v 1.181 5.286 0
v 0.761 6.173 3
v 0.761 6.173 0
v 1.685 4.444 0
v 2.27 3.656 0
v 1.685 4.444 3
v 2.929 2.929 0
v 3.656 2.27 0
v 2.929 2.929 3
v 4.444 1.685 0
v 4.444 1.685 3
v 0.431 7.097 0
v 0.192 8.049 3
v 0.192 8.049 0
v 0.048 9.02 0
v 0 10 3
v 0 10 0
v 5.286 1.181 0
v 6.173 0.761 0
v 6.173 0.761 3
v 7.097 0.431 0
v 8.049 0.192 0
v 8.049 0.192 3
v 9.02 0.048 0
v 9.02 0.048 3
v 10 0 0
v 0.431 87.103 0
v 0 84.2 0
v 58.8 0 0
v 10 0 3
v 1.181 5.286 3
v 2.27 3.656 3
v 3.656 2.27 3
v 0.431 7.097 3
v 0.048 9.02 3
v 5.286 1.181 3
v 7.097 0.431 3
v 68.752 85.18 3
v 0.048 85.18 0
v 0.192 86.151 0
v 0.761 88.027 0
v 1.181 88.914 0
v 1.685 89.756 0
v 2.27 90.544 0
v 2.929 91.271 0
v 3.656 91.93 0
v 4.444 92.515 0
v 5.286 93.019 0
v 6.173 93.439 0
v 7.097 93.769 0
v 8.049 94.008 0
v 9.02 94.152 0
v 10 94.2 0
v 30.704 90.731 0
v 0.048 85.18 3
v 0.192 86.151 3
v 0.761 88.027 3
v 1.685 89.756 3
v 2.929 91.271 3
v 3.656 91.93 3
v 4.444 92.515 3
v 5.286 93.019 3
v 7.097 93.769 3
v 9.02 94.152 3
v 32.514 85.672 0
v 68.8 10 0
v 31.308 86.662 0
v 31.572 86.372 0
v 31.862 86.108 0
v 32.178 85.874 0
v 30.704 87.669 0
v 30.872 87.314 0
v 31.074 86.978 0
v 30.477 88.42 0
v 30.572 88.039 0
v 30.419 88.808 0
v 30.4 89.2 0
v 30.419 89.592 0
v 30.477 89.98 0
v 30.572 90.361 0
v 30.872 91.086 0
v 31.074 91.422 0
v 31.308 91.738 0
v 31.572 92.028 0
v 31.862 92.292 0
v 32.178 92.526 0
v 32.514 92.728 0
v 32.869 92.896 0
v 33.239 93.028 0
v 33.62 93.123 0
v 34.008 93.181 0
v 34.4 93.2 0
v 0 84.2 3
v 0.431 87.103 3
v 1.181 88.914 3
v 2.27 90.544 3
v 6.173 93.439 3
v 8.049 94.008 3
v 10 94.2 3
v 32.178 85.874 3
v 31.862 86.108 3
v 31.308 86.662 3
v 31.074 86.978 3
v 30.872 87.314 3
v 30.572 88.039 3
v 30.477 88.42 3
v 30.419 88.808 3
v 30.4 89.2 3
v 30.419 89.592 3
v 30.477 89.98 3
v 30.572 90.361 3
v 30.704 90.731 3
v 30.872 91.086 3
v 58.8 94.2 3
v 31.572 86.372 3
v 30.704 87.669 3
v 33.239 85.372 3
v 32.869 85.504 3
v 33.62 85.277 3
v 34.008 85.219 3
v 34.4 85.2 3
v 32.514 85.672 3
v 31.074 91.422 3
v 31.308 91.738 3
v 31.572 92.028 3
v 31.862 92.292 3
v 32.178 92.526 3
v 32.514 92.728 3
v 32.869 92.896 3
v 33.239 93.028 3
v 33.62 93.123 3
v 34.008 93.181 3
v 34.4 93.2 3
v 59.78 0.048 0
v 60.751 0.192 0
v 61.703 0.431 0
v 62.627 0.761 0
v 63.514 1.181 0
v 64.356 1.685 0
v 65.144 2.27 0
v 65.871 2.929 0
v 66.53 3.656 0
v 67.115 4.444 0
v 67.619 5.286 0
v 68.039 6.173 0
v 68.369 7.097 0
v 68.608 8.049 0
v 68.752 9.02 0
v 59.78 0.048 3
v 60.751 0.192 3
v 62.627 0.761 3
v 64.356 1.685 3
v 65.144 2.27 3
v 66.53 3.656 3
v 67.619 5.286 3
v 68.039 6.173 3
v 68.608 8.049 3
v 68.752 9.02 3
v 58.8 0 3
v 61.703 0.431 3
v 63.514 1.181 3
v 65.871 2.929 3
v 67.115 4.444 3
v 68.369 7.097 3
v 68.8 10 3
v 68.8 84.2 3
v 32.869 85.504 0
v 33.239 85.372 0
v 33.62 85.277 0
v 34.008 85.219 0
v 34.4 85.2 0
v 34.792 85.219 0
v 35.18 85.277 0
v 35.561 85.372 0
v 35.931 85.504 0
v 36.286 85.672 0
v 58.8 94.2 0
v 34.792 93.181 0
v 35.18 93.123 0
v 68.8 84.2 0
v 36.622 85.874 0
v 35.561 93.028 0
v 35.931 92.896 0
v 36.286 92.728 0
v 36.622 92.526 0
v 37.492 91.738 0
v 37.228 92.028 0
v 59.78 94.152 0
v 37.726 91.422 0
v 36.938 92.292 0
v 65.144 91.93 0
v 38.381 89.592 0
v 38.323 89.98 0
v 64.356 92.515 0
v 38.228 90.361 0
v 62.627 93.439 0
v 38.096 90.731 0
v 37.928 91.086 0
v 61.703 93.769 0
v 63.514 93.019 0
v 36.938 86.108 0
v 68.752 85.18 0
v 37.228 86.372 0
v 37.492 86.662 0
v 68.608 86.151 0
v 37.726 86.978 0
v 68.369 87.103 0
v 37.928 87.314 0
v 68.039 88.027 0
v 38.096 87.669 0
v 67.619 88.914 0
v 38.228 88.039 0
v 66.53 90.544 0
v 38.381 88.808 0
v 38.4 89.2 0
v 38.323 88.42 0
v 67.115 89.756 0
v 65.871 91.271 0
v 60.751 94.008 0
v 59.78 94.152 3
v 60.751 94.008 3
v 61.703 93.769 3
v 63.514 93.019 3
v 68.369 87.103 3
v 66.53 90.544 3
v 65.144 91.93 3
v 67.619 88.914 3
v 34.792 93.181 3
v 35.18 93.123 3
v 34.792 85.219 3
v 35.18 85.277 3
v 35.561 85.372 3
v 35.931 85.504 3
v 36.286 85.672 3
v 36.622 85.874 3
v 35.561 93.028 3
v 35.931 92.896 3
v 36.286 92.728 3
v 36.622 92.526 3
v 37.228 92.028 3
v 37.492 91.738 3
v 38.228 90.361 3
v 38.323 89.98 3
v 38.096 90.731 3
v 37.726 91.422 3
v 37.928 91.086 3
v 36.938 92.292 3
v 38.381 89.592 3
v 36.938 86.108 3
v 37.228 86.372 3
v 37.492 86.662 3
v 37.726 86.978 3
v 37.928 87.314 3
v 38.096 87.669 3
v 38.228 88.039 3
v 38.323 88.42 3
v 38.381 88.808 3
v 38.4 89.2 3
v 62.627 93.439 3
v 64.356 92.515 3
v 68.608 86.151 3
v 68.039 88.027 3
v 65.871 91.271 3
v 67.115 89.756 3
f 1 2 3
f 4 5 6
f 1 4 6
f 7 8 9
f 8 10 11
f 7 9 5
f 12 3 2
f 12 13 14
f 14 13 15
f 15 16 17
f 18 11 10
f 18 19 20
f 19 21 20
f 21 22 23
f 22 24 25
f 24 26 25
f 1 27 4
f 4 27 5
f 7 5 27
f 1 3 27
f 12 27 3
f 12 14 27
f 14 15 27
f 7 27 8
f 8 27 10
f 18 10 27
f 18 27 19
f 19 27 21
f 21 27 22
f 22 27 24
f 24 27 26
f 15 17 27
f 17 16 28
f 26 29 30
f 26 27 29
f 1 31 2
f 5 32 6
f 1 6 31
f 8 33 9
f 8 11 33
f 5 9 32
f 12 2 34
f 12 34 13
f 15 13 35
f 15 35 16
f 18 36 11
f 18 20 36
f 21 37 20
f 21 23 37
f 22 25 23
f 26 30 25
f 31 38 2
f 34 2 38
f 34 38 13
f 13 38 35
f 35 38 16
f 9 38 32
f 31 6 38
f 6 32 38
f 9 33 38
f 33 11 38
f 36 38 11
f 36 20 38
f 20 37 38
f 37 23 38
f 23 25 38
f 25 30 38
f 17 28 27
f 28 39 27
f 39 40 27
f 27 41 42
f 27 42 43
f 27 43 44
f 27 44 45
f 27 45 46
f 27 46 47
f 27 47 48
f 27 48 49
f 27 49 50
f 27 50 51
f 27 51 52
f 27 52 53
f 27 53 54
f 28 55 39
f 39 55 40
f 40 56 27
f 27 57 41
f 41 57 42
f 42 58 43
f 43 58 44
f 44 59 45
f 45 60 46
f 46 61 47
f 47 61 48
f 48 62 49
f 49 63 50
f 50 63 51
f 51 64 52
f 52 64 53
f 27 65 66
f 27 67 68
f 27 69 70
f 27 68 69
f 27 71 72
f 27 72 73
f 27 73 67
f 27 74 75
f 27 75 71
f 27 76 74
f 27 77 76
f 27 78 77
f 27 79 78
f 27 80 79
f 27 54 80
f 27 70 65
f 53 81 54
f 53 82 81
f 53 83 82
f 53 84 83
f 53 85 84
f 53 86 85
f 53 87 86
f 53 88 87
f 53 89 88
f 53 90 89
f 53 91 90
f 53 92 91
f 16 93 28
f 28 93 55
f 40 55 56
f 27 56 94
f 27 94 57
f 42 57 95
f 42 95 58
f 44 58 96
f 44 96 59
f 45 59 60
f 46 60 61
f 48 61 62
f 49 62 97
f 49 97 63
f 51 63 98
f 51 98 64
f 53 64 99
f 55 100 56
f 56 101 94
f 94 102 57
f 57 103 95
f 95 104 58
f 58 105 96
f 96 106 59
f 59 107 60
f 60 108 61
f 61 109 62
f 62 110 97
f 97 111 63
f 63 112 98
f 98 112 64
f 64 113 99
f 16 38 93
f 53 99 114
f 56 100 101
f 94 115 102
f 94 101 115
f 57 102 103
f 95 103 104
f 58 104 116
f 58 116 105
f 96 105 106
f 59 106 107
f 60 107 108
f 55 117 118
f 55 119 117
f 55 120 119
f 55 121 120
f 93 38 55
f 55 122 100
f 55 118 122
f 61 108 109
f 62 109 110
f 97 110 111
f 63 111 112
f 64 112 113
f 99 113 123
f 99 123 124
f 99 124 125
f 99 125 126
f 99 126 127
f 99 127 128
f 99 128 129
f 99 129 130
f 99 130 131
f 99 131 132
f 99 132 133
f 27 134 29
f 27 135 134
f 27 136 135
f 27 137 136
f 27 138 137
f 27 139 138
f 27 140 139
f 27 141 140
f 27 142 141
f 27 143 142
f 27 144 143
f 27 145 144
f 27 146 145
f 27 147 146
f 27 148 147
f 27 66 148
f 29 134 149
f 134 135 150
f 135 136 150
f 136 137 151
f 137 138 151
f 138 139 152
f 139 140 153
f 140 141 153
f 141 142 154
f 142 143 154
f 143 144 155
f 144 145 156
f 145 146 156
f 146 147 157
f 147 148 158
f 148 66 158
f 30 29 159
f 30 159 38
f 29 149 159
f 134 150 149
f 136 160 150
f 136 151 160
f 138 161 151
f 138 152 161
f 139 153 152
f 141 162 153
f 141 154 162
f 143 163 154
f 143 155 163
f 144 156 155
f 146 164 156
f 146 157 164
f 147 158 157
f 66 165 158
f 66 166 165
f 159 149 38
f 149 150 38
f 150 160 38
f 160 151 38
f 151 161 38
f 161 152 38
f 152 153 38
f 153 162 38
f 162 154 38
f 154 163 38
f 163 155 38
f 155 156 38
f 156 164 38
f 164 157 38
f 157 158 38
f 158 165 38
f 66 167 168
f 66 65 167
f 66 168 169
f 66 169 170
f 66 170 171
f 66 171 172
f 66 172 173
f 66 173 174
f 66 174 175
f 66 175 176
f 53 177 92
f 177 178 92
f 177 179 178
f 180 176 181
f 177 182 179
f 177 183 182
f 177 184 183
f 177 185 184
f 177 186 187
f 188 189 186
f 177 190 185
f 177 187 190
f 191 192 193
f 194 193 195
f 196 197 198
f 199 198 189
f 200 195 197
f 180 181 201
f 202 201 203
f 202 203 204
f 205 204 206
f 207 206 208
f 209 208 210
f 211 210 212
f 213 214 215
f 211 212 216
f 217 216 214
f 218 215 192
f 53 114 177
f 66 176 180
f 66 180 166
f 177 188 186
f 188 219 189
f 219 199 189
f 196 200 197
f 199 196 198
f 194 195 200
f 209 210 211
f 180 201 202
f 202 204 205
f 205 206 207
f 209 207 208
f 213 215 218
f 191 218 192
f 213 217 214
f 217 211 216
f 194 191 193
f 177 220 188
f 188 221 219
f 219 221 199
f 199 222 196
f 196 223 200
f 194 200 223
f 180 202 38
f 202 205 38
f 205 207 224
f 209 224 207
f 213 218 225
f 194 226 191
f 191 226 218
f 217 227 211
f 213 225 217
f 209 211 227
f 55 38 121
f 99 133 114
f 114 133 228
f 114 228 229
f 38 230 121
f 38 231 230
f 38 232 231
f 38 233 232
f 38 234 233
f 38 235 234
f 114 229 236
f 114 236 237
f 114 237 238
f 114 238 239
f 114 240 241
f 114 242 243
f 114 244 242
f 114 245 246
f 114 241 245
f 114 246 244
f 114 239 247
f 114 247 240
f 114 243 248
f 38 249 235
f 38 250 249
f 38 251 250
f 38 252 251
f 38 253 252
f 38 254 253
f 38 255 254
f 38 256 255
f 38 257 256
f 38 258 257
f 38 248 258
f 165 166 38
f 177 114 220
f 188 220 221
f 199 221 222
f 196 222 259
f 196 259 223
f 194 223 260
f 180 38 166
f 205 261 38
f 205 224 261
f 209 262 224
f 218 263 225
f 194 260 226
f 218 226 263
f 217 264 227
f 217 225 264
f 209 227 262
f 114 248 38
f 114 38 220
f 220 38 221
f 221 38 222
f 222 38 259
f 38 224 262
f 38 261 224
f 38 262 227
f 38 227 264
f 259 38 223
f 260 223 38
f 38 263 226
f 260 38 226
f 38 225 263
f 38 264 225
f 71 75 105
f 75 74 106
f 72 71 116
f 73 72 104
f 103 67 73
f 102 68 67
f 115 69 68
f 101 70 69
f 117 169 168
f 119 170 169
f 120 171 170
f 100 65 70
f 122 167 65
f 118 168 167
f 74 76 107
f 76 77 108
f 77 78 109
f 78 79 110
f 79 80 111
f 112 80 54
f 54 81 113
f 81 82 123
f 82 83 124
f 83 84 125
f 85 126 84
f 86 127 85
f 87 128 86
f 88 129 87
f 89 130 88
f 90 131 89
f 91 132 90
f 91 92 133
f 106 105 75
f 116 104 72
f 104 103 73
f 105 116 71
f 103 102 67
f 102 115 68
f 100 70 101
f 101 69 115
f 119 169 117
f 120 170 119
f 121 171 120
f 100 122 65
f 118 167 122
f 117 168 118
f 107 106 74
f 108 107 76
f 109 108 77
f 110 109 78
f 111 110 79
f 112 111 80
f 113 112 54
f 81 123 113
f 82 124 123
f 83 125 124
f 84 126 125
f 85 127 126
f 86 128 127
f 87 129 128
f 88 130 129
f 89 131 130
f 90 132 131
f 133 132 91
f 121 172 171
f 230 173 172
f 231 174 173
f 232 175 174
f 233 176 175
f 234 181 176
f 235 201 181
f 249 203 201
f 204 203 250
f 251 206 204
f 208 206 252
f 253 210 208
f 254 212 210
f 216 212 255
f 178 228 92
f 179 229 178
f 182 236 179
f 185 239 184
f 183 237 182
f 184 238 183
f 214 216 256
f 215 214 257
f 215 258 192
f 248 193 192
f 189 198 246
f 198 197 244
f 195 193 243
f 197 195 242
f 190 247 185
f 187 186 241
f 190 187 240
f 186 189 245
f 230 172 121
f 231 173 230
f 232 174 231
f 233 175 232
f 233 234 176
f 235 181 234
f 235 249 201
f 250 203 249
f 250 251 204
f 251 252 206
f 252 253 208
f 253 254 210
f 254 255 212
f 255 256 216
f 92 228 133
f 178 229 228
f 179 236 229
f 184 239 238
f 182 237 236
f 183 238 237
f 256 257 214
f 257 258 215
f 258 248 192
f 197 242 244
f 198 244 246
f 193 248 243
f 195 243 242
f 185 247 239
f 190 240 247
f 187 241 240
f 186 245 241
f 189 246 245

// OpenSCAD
            // Base plate
            difference() {
                hull() {
    translate([10.0,   10.0,   0]) cylinder(h=3.0, r=10.0, $fn=64);
    translate([58.8, 10.0,   0]) cylinder(h=3.0, r=10.0, $fn=64);
    translate([10.0,   84.2, 0]) cylinder(h=3.0, r=10.0, $fn=64);
    translate([58.8, 84.2, 0]) cylinder(h=3.0, r=10.0, $fn=64);
}
translate([34.4000, 89.2000, -1])
    cylinder(h=5.0, r=4.0, $fn=64);
            }
